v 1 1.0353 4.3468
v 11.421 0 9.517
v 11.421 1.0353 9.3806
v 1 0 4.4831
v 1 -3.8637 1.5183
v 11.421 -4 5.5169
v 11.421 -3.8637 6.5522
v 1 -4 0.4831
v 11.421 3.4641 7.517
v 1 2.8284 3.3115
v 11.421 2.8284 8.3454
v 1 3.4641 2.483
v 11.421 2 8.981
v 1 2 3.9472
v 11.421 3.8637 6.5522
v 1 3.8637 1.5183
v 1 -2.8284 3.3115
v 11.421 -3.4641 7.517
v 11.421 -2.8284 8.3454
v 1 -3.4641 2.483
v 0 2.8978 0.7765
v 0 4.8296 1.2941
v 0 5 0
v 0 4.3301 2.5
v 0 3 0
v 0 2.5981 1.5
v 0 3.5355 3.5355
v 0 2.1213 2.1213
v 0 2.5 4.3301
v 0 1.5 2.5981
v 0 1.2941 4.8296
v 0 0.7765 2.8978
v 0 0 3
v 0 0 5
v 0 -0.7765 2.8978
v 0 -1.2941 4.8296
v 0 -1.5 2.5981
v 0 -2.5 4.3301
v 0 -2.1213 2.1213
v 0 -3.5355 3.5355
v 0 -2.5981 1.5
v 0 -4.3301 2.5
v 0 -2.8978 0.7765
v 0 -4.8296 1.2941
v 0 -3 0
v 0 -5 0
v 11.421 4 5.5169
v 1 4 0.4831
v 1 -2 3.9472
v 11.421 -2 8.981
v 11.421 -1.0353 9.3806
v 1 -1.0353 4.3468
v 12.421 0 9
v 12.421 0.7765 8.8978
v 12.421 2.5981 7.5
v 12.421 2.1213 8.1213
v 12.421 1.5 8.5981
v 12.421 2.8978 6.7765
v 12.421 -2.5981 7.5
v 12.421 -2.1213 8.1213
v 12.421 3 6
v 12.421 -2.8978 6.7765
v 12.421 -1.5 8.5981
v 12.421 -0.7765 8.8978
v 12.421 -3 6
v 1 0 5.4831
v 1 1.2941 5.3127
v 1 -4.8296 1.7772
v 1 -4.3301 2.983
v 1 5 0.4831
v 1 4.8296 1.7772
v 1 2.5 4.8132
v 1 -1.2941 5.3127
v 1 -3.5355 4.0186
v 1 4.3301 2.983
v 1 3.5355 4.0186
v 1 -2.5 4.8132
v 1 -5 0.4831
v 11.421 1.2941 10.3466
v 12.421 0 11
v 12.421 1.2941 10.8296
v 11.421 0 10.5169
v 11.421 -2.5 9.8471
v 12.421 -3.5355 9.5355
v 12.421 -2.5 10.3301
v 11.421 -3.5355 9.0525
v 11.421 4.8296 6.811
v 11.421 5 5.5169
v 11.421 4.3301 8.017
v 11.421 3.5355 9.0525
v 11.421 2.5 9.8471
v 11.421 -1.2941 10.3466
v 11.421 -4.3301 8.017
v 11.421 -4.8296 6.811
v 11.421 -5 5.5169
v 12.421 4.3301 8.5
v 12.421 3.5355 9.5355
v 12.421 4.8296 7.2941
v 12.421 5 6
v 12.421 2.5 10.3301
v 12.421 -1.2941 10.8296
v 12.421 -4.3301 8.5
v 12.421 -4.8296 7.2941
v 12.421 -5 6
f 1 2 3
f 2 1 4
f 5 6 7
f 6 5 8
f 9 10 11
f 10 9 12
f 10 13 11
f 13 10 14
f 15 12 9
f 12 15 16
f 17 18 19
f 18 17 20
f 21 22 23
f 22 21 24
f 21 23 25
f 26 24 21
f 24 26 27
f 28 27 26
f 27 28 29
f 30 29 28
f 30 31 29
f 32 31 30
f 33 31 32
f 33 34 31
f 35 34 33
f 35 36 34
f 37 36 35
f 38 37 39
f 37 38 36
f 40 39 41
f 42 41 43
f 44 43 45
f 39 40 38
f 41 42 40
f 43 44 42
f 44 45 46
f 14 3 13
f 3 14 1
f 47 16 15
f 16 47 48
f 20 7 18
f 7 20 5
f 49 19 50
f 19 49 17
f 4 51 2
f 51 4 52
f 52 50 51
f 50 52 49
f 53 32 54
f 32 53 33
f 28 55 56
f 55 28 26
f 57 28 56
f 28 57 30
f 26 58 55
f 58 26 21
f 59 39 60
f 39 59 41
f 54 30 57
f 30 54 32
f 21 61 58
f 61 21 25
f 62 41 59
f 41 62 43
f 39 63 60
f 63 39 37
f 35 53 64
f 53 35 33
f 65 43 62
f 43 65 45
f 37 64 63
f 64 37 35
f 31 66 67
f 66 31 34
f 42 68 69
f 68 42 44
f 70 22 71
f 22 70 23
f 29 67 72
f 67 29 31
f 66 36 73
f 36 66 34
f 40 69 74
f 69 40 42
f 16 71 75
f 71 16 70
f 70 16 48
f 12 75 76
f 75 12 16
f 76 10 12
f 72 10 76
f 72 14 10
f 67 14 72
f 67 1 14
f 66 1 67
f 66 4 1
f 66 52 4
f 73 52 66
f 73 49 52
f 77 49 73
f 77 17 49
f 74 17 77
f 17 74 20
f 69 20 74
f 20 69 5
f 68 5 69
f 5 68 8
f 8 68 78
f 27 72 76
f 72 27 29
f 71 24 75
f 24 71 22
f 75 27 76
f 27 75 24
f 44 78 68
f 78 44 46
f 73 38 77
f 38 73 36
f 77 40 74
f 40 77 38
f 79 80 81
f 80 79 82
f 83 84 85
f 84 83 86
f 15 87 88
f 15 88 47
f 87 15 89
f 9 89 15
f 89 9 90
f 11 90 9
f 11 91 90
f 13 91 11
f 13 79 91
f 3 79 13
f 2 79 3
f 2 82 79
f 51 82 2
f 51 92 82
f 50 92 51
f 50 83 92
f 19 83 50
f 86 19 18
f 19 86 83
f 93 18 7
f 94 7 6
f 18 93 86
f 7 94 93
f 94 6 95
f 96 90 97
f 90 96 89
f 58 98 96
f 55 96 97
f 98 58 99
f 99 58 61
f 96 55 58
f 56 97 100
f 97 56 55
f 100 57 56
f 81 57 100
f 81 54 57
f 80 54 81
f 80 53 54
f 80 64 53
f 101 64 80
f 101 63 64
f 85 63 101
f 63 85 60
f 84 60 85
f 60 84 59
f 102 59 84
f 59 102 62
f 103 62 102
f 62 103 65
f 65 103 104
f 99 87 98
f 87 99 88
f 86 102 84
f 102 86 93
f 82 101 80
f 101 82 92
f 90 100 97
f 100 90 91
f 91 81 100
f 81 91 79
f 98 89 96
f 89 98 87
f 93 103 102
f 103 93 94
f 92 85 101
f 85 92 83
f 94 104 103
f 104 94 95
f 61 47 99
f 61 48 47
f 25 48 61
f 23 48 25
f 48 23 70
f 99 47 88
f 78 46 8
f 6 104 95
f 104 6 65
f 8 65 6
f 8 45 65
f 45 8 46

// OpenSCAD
// file: ../build_environments.scad
// build_environments.scad: modules to build level sections
//

module pool(diameter=10.0, wall_height=2.0, step_width=3.0, connections=[])
{
    difference() {
        union() {
        difference() {
            cylinder(h=0.5,r1=diameter+step_width,r2=diameter+step_width,$fn=48);
            translate([0,0,-0.1])
                cylinder(h=0.7,r1=diameter,r2=diameter,$fn=48);
        }
        difference() {
            cylinder(h=wall_height,r1=diameter+step_width+1.0,r2=diameter+step_width+1.0,$fn=48);
            translate([0,0,-0.1])
                cylinder(h=wall_height+0.2,r1=diameter+step_width,r2=diameter+step_width,$fn=48);
        }
        }
    
        for (c = connections)
        {
            rotate([0,90,0]) {
                angle = atan2(c[1],c[0]);
                rotate([-angle,0,0]) {
                    cylinder(h=diameter+5.0,r1=c[2],r2=c[2],$fn=48);
                }
            }
        }
    }
}

module straight(length=10.0, width=2.0, dy1=0.0, dy2=0.0, dz=0.0)
{
    dims = [0, 0, 0, 0, 0, (dz/length)];
    matrix = [
        [ 1, dims[0], dims[1], 0 ],
        [ dims[2], 1, dims[4], 0 ],
        [ dims[5], dims[3], 1, 0 ],
        [ 0, 0, 0, 1 ]
    ];
    multmatrix(matrix)
    difference() {
        translate([dy1,0,0])
        union() {
            rotate([0,90,0]) {
                difference() {
                    cylinder(h=(length-dy1-dy2),r1=width+1.0,r2=width+1.0,$fn=24);
                    translate([0,0,-0.1])
                        cylinder(h=(length-dy1-dy2+0.2),r1=width,r2=width,$fn=24);
                }
                difference() {
                    cylinder(h=1.0,r1=width+2.0,r2=width+2.0,$fn=24);
                    translate([0,0,-0.1])
                        cylinder(h=1.2,r1=width,r2=width,$fn=24);
                }
                translate([0,0,(length-dy1-dy2)-1.0]) {
                    difference() {
                        cylinder(h=1.0,r1=width+2.0,r2=width+2.0,$fn=24);
                        translate([0,0,-0.1])
                            cylinder(h=1.2,r1=width,r2=width,$fn=24);
                    }
                }
            }
        }
        translate([0,0,-(2*width+4.0)/2])
            cube([3*length,3*length,2*width+4.0],center=true);
    }
}

module curve(p0=[0,0], center=[0,0], dir=1, angle=0.0, width=2.0)
{
    radius = sqrt((p0[0]-center[0])*(p0[0]-center[0]) + (p0[1]-center[1])*(p0[1]-center[1]));
    if (dir == 0) {
        difference() {
            rotate([0,0,-90])
            difference() {
                rotate_extrude(angle = angle, convexity = 10, $fn=32)
                    translate([radius, 0, 0])
                        circle(r = width+1.0,$fn=24);
                rotate([0,0,-1.0])
                    rotate_extrude(angle = angle+2.0, convexity = 10, $fn=32)
                        translate([radius, 0, 0])
                            circle(r = width,$fn=24);
            }
            translate([0,0,-(2*width+4.0)/2])
                cube([5*radius,5*radius,2*width+4.0],center=true);
        }
    }
    else {
        difference() {
            rotate([0,0,90])
            difference() {
                rotate_extrude(angle = -angle, convexity = 10, $fn=32)
                    translate([radius, 0, 0])
                        circle(r = width+1.0,$fn=24);
                rotate([0,0,1.0])
                    rotate_extrude(angle = -angle-2.0, convexity = 10, $fn=32)
                        translate([radius, 0, 0])
                            circle(r = width,$fn=24);
            }
            translate([0,0,-(2*width+4.0)/2])
                cube([5*radius,5*radius,2*width+4.0],center=true);
        }
    }

}

// test pool
//pool(diameter=12.0000, wall_height=3.0000, step_width=3.0000, connections=[[0.0000,-26.0000,2.0000], [23.6074,0.0000,2.0000]]);

// test straight, slope
//straight(length=26.0000, width=2.0000, dy1=11.8322, dy2=6.7082, dz=0.0000);
//straight(length=29.1549, width=12.0000, dy1=0.0000, dy2=0.0000, dz=-15.0000);

// test curve
//curve(p0=[23.6074, 0.0000], center=[23.6074, 5.0000], dir=0, angle=60.1011, width=2.0000);
//curve(p0=[33.6426, 12.4219], center=[37.9771, 9.9295], dir=1, angle=120.4627, width=2.0000);
// main file
use <../build_environments.scad>;
straight(length=12.4210, width=3.0000, dy1=0.0000, dy2=0.0000, dz=6.0000);
